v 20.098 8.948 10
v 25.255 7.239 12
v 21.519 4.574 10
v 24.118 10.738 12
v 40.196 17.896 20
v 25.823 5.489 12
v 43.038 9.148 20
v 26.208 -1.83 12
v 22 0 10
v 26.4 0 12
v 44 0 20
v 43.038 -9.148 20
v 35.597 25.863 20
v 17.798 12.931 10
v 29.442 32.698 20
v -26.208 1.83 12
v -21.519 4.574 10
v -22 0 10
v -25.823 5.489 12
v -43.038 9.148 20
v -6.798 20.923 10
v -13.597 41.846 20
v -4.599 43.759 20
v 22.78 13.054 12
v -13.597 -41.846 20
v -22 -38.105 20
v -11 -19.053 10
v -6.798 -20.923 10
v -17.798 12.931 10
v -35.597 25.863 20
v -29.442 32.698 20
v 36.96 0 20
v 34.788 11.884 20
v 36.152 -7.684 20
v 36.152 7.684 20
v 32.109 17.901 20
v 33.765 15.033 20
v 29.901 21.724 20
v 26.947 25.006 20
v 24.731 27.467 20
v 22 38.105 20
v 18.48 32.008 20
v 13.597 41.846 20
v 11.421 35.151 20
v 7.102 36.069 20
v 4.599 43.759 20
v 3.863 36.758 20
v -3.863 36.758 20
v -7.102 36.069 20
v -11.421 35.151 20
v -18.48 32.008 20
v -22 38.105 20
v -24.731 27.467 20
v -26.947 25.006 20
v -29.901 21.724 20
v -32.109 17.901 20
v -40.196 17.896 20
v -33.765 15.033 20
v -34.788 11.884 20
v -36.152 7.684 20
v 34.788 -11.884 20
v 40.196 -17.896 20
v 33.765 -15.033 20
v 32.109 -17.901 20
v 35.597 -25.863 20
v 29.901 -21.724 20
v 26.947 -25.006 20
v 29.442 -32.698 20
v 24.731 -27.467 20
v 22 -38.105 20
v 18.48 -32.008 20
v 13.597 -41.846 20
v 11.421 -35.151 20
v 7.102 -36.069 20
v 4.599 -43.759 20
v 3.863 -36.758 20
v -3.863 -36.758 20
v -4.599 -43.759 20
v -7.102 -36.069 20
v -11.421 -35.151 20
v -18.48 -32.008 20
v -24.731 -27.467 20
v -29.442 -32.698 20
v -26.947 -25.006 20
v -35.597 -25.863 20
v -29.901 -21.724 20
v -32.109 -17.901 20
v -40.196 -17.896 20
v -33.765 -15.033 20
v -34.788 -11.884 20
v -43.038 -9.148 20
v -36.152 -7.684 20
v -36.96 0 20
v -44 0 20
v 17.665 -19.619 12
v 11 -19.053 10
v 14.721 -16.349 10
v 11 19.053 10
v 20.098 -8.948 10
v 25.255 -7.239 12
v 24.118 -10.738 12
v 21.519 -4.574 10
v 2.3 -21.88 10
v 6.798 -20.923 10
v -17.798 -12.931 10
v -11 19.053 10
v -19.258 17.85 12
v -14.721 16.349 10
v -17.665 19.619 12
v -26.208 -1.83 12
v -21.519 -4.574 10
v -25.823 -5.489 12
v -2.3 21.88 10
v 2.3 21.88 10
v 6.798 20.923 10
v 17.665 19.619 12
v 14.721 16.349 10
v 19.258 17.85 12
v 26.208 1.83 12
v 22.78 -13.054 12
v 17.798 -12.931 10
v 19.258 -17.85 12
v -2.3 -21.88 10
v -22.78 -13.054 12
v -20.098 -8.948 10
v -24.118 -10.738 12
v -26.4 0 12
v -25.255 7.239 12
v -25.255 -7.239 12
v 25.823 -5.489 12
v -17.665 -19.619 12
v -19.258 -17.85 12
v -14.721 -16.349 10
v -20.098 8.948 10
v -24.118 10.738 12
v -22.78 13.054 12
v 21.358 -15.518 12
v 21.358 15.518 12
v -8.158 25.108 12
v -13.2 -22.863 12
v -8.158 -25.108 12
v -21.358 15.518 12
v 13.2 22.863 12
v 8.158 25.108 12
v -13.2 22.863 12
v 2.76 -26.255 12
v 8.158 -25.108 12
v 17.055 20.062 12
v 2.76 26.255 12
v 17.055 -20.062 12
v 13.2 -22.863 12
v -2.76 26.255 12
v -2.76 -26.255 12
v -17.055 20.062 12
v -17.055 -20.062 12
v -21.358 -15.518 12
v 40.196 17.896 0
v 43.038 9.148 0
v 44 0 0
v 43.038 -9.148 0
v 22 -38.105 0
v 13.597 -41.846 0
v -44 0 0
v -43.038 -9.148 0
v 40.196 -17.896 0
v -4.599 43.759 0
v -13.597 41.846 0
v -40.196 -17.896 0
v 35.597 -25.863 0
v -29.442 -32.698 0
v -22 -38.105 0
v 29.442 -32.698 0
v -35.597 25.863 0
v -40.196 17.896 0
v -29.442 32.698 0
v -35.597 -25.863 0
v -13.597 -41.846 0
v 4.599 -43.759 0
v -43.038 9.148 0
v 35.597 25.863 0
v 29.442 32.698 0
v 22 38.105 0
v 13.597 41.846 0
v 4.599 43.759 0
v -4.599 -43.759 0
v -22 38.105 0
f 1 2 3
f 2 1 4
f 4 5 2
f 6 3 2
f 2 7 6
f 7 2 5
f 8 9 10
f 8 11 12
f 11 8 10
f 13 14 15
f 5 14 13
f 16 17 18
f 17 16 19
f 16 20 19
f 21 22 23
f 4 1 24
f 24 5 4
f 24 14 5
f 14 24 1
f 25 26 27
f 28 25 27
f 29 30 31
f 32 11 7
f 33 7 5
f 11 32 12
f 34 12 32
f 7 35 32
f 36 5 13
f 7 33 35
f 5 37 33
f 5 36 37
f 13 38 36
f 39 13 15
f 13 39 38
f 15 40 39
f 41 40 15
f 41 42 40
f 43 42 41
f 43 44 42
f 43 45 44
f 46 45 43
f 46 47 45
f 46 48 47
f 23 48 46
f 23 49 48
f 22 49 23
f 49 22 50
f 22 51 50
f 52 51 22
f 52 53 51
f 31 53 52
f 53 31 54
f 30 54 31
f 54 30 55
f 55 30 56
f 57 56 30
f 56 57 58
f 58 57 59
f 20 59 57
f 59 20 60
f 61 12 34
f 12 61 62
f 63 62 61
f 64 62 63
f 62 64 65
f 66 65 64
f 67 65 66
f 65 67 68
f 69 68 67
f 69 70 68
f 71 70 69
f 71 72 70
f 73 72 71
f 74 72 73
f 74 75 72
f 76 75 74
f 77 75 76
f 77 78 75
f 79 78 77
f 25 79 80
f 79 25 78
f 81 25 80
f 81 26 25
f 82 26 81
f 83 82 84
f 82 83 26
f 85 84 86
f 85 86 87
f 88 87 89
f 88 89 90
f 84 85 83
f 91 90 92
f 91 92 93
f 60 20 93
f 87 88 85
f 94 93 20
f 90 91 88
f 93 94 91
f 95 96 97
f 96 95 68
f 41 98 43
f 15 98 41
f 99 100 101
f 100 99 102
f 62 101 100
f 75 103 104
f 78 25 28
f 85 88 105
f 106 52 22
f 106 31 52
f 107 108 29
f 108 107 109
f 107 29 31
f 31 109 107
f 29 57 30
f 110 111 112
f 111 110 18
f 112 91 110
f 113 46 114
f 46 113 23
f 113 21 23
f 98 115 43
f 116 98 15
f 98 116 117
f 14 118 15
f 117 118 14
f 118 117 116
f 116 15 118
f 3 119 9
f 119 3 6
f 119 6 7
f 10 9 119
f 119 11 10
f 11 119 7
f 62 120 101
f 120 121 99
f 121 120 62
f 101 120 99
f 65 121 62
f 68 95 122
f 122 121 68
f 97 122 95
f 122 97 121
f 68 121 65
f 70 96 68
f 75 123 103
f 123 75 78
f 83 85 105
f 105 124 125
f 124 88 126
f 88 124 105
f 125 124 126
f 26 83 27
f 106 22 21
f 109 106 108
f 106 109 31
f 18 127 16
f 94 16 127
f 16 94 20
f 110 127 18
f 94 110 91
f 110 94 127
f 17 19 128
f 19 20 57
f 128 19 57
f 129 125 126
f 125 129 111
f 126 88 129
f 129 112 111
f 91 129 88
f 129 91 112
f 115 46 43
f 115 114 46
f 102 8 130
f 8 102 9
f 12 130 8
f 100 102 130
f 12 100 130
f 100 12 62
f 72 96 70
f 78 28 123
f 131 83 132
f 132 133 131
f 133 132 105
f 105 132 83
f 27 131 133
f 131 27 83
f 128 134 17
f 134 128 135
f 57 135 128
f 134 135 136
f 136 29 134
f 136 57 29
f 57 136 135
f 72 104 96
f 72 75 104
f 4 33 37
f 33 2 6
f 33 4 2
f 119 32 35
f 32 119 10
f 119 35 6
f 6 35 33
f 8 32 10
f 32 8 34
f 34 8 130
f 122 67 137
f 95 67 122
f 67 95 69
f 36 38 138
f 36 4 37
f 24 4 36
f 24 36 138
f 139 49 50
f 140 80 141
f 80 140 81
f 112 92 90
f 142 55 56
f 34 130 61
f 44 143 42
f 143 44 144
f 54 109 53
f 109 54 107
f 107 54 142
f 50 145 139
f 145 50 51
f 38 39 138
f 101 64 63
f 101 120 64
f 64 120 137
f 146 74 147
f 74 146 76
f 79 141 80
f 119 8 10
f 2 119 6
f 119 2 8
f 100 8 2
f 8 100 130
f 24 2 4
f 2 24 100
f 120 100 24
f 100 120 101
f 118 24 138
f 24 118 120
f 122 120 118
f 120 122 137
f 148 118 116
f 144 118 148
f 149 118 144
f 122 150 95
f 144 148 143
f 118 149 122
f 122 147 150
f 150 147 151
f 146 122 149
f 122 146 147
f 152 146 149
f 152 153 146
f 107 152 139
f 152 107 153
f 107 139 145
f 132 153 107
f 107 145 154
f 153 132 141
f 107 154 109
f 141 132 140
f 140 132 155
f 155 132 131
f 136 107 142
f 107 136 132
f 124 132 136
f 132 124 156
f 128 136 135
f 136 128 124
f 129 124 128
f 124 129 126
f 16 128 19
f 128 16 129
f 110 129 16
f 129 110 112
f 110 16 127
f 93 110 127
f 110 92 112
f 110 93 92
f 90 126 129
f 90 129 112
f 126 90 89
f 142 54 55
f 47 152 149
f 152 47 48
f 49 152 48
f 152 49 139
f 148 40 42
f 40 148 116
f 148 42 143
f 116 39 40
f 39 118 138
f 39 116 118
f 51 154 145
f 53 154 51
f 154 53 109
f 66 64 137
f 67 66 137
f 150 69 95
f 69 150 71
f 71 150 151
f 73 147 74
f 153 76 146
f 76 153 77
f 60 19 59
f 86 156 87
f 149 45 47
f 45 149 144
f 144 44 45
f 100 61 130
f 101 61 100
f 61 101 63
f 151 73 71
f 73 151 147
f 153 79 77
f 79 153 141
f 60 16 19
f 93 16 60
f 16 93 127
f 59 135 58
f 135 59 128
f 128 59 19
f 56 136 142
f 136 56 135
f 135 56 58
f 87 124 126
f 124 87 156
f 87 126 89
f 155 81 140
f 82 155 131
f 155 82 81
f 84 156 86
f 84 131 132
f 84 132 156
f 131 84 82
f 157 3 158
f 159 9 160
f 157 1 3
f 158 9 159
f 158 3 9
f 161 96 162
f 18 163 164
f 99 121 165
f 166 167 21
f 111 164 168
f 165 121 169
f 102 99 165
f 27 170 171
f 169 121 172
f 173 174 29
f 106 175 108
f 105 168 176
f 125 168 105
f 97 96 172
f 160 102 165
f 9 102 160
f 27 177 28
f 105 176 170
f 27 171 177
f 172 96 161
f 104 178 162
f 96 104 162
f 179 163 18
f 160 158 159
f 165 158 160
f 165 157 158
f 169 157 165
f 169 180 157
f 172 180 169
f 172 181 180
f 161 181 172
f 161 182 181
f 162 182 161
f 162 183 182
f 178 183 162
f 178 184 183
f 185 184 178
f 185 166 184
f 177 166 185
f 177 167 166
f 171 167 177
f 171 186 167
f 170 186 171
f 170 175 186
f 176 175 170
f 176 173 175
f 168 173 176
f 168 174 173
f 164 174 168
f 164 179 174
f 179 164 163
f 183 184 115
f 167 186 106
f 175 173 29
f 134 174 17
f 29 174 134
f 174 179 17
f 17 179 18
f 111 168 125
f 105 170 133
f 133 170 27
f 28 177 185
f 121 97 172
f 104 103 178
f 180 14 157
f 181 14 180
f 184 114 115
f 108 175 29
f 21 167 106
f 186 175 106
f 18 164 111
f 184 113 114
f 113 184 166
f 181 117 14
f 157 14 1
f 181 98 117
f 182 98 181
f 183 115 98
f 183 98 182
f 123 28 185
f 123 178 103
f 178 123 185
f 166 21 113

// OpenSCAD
HEIGHT = 10;
module cone() {
    translate([0,0,HEIGHT])
    mirror([0,0,1])
    linear_extrude(HEIGHT, scale=[0.5,0.5])
    circle(40);
}
scale([1.1,1.1,1])
translate([0,0,HEIGHT])
union() {
    difference() {
        cone();
        translate([0,0,2])
        scale([1.2,1.2,2])
        cone();
    }
    mirror([0,0,1])
        cone();
}
